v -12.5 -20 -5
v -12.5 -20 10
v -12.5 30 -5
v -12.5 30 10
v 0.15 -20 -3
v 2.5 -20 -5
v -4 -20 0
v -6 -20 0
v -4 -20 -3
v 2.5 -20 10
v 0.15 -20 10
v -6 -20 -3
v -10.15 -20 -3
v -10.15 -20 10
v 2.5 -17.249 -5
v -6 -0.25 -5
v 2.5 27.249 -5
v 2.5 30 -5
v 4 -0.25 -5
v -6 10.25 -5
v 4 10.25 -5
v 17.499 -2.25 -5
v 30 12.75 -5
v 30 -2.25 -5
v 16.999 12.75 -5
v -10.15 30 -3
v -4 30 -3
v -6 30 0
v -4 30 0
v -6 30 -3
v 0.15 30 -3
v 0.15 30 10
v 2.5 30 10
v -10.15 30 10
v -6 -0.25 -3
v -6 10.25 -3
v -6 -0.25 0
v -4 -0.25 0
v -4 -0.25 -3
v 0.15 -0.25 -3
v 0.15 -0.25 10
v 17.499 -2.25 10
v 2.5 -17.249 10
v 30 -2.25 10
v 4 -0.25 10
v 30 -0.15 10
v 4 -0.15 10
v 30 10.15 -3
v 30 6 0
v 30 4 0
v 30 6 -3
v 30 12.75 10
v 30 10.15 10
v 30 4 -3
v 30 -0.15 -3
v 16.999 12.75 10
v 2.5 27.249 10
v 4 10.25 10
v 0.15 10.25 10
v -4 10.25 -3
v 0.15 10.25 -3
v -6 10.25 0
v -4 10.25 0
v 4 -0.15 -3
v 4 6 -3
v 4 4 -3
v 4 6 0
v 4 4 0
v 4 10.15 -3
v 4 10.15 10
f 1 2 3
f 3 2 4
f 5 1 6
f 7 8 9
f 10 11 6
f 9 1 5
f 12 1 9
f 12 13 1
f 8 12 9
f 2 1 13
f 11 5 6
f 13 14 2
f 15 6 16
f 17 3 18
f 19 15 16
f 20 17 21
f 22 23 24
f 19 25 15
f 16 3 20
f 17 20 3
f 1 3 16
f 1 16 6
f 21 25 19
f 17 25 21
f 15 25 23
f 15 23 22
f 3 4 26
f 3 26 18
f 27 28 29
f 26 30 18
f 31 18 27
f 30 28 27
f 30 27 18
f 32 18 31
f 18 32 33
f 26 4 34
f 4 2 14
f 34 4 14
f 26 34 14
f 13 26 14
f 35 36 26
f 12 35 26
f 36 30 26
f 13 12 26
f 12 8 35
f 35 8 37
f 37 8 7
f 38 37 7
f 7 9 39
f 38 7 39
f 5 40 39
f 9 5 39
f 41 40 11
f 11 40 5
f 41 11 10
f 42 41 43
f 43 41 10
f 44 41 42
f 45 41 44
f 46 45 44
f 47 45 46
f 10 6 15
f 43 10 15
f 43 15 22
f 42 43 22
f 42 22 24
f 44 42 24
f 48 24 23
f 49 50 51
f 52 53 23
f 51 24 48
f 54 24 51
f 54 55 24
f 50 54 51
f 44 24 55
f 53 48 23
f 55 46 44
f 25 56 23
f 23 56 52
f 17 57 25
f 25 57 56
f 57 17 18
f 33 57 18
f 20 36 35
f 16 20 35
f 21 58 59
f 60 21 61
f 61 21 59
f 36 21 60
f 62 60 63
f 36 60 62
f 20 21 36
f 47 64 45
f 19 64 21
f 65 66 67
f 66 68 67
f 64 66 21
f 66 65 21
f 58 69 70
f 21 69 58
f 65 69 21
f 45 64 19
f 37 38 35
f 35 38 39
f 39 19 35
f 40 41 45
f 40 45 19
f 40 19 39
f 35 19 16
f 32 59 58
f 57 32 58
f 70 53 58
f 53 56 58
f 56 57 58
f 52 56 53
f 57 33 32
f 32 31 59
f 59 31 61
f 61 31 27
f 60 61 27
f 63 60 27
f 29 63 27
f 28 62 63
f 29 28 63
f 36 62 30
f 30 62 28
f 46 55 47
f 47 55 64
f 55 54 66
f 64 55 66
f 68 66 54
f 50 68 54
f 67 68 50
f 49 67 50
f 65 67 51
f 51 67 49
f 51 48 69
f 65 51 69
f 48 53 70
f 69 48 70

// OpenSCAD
$fn=64;

difference() {
  union() {
    difference() {
      union() {
        translate([-(10+1+2*2+10)/2, -20, -5]) cube([10+1+2*2, 50, 10+3+2]);
        translate([0, -(10+1+2*2-10)/2+.25, -5]) cube([30, 10+1+2*2, 10+3+2]);
        intersection() {
          translate([0, 5, 0]) rotate([0, 0, 45]) union() {
            translate([0, 0, 2.5]) cube([35, 35, 15], center=true);
            // translate([0, 0, 8.5]) cube([35, 35, 3], center=true);
          }
          translate([0, -20, -6]) cube([20, 50, 20]);
        }
      }
      translate([-5, -.15, -3]) cube([50, 10.3, 13.01]);
      translate([-10.5+.35, -35, -3]) cube([10.3, 80, 13.01]);
    }
    translate([-5, (10-2)/2, -3]) cube([35, 2, 3]);
    translate([-(10+2)/2, -20, -3]) cube([2, 50, 3]);
  }
  translate([-1, 5, 0]) cube([10, 10.5, 20], center=true);
}



% union() {
  cube([50, 10, 10]);
  translate([0, -30, 0]) rotate([0, 0, 90]) cube([70, 10, 10]);  
}
